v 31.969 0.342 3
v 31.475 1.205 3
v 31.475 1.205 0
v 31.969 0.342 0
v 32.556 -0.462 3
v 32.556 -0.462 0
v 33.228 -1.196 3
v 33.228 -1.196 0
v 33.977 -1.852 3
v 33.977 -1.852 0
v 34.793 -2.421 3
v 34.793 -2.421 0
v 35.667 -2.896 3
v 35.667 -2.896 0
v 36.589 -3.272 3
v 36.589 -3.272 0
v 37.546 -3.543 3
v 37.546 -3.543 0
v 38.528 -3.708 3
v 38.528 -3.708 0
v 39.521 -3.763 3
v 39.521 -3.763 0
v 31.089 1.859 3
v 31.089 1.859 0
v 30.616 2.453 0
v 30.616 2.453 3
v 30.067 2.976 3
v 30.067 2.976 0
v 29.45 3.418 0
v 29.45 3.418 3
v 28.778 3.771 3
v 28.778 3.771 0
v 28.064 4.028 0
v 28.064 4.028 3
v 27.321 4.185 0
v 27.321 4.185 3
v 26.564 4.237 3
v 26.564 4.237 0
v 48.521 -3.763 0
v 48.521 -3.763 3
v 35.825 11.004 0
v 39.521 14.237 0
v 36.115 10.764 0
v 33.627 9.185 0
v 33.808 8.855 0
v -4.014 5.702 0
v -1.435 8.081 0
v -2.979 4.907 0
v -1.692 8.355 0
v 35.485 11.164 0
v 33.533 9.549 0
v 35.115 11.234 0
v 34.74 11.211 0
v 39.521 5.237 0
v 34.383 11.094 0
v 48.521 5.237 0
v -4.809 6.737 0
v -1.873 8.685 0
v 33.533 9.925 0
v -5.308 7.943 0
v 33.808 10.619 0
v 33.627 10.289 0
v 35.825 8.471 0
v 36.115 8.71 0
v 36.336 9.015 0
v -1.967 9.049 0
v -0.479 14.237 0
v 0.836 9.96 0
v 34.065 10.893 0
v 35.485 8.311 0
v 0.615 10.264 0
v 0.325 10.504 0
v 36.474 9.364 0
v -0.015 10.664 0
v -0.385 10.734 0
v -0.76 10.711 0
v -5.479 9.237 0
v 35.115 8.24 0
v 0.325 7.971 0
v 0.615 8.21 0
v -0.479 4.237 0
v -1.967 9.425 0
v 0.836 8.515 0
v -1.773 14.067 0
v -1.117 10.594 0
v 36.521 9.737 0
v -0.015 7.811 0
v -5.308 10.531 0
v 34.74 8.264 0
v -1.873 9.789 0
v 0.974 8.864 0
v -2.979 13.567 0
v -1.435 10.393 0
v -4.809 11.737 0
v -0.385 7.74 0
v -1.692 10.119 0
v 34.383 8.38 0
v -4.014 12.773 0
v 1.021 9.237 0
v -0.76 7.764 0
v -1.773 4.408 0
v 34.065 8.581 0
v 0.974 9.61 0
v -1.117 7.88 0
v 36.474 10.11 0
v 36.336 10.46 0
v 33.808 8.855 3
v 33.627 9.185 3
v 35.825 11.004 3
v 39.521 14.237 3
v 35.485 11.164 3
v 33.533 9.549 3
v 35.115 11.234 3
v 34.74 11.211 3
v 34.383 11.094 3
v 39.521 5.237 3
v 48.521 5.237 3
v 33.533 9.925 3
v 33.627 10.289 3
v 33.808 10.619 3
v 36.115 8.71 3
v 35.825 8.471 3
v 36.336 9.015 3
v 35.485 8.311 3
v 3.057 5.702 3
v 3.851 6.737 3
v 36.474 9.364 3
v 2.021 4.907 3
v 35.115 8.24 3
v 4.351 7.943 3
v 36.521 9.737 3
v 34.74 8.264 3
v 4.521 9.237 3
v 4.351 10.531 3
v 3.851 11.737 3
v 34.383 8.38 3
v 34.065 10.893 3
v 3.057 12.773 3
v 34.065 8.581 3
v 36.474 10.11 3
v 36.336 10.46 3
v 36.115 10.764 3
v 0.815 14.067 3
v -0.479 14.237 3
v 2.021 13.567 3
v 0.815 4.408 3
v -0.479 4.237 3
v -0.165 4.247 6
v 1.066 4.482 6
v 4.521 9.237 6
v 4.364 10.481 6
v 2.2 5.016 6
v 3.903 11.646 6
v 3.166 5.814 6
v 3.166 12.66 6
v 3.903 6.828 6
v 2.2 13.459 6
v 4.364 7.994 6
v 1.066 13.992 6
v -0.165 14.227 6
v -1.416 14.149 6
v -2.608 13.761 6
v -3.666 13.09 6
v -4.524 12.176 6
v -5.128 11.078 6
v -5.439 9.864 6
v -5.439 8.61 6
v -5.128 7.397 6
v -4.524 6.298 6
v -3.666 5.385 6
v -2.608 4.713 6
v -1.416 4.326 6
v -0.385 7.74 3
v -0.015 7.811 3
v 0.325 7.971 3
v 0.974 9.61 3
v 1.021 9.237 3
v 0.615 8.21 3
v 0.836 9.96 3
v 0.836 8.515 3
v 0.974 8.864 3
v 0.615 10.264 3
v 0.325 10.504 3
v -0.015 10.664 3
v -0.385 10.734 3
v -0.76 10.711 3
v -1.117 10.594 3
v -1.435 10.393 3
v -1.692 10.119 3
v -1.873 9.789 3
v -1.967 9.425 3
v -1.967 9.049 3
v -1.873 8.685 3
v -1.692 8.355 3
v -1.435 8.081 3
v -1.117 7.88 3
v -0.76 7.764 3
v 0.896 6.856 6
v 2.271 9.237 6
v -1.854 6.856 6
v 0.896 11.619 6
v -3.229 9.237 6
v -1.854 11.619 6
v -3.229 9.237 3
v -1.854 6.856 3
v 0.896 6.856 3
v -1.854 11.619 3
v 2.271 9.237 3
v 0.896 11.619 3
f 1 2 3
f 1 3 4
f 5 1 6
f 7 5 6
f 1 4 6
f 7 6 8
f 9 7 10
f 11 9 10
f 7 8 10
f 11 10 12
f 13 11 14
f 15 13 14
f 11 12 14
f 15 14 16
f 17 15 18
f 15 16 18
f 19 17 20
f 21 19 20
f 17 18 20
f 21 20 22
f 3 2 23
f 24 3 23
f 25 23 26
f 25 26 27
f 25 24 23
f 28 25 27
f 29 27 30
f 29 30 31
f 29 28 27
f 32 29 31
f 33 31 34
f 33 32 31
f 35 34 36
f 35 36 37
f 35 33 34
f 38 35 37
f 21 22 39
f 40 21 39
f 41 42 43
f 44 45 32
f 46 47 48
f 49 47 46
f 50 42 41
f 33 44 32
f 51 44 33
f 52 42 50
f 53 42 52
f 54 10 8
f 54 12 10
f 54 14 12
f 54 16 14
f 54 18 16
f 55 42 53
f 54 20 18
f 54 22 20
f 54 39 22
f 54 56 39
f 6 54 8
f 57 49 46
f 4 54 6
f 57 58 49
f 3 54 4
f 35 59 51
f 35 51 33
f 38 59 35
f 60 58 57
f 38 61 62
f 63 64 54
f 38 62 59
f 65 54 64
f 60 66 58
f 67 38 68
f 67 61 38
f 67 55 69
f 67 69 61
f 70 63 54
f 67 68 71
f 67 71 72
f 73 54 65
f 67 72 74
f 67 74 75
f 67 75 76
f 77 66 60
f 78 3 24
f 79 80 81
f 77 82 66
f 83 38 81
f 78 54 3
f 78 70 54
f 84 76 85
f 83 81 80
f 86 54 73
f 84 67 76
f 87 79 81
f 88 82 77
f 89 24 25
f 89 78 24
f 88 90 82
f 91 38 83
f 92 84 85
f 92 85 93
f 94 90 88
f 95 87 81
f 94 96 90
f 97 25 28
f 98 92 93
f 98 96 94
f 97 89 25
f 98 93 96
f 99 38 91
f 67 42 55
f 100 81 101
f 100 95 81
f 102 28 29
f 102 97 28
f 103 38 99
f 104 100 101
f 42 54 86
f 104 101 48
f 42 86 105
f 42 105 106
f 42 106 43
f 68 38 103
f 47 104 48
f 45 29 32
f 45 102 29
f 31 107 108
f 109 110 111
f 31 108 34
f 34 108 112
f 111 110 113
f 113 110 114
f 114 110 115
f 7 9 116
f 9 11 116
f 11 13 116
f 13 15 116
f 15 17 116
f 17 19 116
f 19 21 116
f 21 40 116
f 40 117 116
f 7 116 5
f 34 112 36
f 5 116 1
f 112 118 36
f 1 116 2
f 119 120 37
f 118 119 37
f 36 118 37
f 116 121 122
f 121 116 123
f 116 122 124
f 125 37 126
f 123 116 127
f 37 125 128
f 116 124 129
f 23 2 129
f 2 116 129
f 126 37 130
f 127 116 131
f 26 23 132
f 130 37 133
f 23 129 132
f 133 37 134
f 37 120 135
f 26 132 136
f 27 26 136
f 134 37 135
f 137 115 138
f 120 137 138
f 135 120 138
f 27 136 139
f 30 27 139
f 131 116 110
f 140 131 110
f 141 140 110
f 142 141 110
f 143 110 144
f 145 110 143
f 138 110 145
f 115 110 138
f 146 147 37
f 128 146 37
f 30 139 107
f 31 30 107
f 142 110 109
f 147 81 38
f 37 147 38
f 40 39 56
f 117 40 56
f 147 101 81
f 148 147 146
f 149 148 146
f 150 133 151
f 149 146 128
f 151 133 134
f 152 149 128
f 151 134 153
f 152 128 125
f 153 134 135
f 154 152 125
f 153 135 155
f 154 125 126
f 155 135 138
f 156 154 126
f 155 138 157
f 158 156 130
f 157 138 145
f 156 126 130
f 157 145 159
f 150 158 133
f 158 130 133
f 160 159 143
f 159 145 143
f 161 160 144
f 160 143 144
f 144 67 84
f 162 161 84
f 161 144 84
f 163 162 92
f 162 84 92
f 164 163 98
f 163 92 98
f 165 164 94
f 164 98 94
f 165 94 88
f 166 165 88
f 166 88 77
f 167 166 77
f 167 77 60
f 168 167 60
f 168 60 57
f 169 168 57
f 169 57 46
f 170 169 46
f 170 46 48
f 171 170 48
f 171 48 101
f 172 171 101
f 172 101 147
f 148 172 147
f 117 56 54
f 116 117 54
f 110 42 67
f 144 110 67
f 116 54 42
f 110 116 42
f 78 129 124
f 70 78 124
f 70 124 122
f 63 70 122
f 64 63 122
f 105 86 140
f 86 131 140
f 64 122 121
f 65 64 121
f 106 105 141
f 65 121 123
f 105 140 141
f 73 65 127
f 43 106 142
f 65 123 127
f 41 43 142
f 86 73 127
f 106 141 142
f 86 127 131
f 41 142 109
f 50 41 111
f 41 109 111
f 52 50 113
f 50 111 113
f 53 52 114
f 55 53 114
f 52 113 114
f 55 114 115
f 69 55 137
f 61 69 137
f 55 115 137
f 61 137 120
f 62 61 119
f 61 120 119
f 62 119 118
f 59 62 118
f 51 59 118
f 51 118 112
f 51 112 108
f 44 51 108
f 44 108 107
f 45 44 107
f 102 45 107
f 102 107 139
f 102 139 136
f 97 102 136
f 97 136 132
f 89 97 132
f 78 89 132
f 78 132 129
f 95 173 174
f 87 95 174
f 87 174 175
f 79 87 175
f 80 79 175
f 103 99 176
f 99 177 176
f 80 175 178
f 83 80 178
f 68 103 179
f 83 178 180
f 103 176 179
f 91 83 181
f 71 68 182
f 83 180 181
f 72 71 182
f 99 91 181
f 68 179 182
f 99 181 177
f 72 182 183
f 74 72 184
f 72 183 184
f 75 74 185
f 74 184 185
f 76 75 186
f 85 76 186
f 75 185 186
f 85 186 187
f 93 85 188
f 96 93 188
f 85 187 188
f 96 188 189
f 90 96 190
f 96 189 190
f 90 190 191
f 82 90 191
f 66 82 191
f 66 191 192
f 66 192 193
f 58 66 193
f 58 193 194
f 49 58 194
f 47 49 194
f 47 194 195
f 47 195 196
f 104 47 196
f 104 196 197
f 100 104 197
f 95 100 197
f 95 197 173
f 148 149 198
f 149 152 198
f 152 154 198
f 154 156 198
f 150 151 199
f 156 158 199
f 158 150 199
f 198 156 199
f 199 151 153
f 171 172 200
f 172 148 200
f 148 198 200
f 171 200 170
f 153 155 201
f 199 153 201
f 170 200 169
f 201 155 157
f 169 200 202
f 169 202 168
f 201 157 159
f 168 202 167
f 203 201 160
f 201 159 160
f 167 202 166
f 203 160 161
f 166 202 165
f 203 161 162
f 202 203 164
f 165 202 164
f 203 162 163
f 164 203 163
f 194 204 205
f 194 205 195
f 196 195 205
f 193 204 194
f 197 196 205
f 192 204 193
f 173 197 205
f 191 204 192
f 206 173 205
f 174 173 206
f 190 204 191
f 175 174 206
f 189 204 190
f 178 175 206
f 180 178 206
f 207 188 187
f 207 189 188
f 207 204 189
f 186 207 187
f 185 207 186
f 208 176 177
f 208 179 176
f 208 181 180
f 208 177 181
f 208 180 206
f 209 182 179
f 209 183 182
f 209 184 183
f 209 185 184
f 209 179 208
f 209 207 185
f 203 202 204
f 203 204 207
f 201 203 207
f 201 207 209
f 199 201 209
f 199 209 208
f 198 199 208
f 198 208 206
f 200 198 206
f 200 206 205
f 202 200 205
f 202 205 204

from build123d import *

# Parameters (mm, degrees)
PAD_DEPTH       = 3
SKETCH001_R     = 1.5
POCKET_DEPTH    = 3.001
SKETCH002_R     = 5
PAD001_DEPTH    = 3
POCKET001_DEPTH = 3
SKETCH004_R     = 1.5
POCKET002_DEPTH = 3.001


with BuildPart() as part:
    # Sketch → Pad (new body)
    with BuildSketch(Plane.XY):
        with BuildLine():
            Line((48.521288, 5.237141), (39.521288, 5.237141))
            Line((39.521288, 5.237141), (39.521288, 14.237141))
            Line((39.521288, 14.237141), (-0.478712, 14.237141))
            ThreePointArc((-0.478712, 14.237141), (-5.478728, 9.23715), (-0.478728, 4.237141))
            Line((-0.478728, 4.237141), (26.564369, 4.237141))
            ThreePointArc((31.474962, 1.205189), (29.449965, 3.418084), (26.564369, 4.237141))
            ThreePointArc((31.474962, 1.205189), (34.793052, -2.420782), (39.521288, -3.762859))
            Line((39.521288, -3.762859), (48.521288, -3.762859))
            Line((48.521288, -3.762859), (48.521288, 5.237141))
        make_face()
    extrude(amount=PAD_DEPTH)

    # Sketch001 → Pocket (cut, through all)
    with BuildSketch(Plane.XY.offset(3)):
        with Locations((35.021288, 9.737141)):
            Circle(SKETCH001_R)
    extrude(amount=-POCKET_DEPTH, mode=Mode.SUBTRACT)

    # Sketch002 → Pad001 (new body)
    with BuildSketch(Plane.XY.offset(3)):
        with Locations((-0.478728, 9.237141)):
            Circle(SKETCH002_R)
    extrude(amount=PAD001_DEPTH)

    # Sketch003 → Pocket001 (cut)
    with BuildSketch(Plane.XY.offset(6)):
        Polygon((-1.853728, 11.618711), (0.896272, 11.618711), (2.271272, 9.237141), (0.896272, 6.855571), (-1.853728, 6.855571), (-3.228728, 9.237141), align=None)
    extrude(amount=-POCKET001_DEPTH, mode=Mode.SUBTRACT)

    # Sketch004 → Pocket002 (cut, through all)
    with BuildSketch(Plane.XY.offset(3)):
        with Locations((-0.478728, 9.237141)):
            Circle(SKETCH004_R)
    extrude(amount=-POCKET002_DEPTH, mode=Mode.SUBTRACT)


solid = part.part
